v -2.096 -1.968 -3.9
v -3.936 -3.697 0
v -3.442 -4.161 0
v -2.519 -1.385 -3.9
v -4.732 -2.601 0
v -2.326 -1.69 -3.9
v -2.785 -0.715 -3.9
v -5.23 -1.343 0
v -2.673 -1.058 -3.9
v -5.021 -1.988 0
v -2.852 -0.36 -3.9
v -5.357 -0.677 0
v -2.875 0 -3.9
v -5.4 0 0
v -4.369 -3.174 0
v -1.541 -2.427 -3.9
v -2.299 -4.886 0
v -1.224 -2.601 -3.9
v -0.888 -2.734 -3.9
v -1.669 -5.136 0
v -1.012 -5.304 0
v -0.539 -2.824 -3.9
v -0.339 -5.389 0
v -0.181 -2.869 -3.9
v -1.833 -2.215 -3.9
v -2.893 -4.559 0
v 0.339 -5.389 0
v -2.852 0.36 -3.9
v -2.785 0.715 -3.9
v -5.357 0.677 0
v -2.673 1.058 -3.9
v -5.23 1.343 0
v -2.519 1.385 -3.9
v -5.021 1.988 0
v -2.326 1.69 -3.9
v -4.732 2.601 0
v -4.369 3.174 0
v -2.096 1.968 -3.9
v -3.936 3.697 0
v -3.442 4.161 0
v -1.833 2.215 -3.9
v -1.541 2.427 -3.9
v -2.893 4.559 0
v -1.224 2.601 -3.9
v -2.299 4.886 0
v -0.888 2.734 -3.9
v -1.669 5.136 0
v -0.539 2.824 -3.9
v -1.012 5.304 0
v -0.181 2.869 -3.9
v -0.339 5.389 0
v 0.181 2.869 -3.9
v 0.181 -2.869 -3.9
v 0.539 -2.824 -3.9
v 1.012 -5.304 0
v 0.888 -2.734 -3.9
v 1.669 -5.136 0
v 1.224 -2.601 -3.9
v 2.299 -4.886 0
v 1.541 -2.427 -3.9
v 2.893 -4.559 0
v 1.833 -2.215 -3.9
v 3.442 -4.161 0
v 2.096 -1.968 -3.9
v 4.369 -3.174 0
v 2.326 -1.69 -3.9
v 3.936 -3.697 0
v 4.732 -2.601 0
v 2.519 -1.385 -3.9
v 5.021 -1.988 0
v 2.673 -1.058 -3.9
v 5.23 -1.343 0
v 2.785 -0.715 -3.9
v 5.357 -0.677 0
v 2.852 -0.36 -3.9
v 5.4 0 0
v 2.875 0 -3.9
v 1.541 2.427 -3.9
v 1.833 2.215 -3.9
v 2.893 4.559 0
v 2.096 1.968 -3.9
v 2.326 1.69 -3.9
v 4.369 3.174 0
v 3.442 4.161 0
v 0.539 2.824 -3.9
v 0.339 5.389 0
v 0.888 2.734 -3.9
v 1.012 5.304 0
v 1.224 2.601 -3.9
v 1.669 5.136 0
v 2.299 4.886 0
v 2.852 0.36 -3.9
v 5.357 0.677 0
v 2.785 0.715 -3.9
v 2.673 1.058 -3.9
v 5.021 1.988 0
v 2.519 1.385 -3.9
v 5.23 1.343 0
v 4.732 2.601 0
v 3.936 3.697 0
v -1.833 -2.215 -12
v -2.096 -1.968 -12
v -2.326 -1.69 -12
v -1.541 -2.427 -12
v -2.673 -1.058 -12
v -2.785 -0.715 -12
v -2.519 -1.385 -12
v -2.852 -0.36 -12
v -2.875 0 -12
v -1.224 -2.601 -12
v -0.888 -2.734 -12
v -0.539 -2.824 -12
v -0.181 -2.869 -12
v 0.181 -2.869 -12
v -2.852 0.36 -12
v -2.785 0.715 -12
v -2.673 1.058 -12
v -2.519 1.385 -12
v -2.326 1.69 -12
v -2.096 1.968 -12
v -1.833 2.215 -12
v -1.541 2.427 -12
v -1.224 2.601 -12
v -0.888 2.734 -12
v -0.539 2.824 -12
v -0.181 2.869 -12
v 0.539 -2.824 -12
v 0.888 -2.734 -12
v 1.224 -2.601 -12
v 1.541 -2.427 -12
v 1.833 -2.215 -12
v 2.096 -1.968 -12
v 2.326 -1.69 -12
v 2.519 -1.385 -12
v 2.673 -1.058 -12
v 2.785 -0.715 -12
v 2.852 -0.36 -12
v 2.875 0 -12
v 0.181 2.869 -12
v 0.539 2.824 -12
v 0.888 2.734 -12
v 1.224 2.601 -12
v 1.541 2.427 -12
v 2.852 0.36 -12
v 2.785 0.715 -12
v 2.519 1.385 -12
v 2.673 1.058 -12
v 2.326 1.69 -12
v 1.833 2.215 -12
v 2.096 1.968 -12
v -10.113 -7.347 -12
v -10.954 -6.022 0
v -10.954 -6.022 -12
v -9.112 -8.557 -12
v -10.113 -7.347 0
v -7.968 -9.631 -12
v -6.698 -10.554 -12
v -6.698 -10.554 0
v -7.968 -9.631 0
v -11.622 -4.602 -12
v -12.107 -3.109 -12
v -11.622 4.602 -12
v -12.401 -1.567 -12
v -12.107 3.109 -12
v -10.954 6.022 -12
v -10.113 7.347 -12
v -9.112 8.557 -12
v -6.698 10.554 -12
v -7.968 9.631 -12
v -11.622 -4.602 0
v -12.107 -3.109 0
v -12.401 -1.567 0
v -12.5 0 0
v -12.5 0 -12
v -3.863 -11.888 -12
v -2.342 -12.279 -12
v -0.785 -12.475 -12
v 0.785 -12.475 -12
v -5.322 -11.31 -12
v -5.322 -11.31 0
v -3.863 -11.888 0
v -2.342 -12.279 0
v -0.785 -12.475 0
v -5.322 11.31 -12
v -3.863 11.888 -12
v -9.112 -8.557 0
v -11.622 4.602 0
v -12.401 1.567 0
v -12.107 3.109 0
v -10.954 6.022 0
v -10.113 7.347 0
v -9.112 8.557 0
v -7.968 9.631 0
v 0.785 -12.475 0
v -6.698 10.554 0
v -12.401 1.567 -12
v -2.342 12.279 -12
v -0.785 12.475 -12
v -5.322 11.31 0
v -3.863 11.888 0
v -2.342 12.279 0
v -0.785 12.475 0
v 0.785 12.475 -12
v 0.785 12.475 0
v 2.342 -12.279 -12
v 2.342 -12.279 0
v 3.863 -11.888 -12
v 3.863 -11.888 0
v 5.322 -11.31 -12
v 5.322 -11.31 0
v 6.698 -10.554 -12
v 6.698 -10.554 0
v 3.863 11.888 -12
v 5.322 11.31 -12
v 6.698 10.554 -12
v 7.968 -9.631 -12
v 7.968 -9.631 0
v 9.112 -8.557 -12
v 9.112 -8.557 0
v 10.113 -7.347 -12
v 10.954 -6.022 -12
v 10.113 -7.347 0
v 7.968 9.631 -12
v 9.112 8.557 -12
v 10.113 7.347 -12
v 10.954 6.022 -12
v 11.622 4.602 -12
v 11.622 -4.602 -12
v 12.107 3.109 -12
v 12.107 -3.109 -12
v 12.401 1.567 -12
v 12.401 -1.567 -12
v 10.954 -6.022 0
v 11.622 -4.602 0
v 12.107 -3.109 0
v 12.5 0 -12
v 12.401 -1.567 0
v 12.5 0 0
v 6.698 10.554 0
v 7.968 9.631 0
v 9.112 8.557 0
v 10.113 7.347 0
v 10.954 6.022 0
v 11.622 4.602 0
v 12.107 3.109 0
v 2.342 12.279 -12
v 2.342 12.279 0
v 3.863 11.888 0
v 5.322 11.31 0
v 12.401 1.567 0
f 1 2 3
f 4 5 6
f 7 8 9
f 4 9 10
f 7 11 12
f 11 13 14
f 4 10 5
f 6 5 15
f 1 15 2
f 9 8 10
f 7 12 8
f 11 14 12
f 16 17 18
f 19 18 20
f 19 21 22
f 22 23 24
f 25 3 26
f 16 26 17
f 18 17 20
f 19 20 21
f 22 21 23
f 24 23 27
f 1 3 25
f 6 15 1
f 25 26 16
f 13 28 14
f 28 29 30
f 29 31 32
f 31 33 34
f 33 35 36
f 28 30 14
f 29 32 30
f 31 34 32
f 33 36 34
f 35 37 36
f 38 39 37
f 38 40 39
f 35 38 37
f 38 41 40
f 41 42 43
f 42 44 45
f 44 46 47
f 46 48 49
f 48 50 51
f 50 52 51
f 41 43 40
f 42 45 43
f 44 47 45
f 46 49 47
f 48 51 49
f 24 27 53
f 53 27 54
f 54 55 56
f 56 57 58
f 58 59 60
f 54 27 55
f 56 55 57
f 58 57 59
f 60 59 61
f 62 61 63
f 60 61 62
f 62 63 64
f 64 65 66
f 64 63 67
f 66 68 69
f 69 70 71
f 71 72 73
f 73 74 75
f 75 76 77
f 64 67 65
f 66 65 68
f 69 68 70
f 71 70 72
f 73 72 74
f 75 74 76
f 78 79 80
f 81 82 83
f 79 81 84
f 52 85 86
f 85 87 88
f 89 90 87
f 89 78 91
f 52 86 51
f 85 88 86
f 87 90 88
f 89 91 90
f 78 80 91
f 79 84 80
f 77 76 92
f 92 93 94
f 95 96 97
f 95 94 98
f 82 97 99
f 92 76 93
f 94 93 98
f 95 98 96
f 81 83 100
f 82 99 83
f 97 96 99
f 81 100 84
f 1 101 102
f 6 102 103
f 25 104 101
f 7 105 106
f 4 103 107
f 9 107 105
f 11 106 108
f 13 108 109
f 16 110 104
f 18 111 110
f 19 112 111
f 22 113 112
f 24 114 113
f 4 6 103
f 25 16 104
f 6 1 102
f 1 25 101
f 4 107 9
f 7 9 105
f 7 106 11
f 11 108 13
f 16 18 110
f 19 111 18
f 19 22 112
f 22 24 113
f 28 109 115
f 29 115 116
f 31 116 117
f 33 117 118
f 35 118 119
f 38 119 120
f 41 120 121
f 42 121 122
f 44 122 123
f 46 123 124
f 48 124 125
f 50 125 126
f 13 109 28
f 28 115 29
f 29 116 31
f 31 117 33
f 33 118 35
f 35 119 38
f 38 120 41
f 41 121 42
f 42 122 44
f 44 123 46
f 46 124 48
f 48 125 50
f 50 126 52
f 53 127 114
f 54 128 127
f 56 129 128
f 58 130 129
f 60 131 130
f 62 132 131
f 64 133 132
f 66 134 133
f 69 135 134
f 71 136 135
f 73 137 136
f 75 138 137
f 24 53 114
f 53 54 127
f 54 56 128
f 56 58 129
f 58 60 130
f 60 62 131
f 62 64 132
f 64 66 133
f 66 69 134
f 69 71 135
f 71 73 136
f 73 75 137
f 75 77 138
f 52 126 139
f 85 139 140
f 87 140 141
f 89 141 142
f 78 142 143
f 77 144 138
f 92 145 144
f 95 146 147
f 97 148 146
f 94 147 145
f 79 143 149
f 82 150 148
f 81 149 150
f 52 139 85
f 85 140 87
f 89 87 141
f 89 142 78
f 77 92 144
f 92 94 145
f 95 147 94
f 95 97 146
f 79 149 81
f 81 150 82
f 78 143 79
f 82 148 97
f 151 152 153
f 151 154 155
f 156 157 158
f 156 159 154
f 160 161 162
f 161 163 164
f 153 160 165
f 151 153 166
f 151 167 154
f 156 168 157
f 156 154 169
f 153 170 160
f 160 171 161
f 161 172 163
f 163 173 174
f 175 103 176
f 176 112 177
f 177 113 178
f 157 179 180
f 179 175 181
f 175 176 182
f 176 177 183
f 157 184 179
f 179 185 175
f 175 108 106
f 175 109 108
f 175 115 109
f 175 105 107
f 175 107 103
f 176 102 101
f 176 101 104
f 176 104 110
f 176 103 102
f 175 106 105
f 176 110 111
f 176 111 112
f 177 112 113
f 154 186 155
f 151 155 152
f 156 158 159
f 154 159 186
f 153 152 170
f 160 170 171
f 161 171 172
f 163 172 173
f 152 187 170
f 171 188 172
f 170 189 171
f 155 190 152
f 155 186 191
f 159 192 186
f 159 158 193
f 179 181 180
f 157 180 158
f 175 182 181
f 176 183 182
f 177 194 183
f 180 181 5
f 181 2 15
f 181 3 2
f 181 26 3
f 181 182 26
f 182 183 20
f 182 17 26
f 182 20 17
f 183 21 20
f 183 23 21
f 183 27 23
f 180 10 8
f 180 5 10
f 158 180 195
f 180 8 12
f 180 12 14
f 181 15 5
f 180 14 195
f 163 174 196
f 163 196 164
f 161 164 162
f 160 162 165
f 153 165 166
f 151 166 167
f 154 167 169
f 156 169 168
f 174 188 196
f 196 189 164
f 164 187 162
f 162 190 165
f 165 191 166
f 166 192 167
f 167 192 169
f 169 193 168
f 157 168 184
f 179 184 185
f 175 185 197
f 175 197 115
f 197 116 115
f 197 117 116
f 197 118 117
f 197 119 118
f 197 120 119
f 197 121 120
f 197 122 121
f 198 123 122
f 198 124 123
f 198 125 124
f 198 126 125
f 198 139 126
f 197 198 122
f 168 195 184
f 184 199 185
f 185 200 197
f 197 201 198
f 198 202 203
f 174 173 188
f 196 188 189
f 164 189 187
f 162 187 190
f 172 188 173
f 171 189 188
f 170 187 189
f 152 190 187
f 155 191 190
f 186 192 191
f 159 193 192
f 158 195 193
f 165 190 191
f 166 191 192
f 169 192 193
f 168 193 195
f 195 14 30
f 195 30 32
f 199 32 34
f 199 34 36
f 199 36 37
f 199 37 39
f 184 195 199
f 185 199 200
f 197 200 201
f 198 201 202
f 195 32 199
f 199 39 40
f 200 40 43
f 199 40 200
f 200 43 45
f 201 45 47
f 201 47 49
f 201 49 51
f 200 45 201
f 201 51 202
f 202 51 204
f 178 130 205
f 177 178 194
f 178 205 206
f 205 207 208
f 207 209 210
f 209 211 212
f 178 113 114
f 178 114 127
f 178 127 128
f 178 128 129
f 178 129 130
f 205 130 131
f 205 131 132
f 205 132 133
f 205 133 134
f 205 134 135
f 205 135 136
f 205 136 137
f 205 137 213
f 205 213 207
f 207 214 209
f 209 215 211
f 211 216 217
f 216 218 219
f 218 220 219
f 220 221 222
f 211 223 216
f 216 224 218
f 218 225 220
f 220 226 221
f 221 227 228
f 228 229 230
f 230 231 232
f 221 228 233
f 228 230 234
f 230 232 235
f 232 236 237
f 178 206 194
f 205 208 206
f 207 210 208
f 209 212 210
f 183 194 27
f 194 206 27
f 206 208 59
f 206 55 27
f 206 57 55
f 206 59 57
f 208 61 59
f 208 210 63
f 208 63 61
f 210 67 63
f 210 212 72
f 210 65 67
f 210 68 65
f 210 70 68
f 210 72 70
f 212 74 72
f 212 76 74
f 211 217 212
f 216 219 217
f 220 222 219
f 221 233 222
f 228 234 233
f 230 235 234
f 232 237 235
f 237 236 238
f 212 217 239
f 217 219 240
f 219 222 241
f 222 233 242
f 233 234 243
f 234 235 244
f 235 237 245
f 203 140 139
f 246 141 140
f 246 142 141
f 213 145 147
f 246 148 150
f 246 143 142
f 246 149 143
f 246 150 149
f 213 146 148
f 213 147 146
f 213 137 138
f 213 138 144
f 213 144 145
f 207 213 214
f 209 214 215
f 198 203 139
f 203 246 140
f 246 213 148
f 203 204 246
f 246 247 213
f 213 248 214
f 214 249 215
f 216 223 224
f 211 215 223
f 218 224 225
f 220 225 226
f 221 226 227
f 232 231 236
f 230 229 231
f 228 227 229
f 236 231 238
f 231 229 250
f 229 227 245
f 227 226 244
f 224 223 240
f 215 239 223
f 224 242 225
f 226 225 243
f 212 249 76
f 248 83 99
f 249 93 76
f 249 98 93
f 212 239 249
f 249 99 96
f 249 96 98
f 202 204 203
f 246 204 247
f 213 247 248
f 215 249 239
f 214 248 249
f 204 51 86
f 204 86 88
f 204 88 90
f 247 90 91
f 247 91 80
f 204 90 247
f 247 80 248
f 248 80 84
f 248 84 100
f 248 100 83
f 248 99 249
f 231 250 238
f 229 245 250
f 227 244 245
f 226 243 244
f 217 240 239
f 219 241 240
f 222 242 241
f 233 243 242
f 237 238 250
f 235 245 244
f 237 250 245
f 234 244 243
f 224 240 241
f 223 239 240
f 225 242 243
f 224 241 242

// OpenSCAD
$fn = 50;


difference() {
	union() {
		translate(v = [0, 0, -12.0000000000]) {
			cylinder(h = 12, r = 12.5000000000);
		}
	}
	union() {
		translate(v = [0, 0, 0]) {
			rotate(a = [0, 0, 0]) {
				difference() {
					union() {
						translate(v = [0, 0, -15.0000000000]) {
							cylinder(h = 15, r = 2.6000000000);
						}
						translate(v = [0, 0, -3.9000000000]) {
							cylinder(h = 3.9000000000, r1 = 2.8750000000, r2 = 5.4000000000);
						}
						translate(v = [0, 0, -15.0000000000]) {
							cylinder(h = 15, r = 2.8750000000);
						}
						translate(v = [0, 0, -15.0000000000]) {
							cylinder(h = 15, r = 2.6000000000);
						}
					}
					union();
				}
			}
		}
	}
}
